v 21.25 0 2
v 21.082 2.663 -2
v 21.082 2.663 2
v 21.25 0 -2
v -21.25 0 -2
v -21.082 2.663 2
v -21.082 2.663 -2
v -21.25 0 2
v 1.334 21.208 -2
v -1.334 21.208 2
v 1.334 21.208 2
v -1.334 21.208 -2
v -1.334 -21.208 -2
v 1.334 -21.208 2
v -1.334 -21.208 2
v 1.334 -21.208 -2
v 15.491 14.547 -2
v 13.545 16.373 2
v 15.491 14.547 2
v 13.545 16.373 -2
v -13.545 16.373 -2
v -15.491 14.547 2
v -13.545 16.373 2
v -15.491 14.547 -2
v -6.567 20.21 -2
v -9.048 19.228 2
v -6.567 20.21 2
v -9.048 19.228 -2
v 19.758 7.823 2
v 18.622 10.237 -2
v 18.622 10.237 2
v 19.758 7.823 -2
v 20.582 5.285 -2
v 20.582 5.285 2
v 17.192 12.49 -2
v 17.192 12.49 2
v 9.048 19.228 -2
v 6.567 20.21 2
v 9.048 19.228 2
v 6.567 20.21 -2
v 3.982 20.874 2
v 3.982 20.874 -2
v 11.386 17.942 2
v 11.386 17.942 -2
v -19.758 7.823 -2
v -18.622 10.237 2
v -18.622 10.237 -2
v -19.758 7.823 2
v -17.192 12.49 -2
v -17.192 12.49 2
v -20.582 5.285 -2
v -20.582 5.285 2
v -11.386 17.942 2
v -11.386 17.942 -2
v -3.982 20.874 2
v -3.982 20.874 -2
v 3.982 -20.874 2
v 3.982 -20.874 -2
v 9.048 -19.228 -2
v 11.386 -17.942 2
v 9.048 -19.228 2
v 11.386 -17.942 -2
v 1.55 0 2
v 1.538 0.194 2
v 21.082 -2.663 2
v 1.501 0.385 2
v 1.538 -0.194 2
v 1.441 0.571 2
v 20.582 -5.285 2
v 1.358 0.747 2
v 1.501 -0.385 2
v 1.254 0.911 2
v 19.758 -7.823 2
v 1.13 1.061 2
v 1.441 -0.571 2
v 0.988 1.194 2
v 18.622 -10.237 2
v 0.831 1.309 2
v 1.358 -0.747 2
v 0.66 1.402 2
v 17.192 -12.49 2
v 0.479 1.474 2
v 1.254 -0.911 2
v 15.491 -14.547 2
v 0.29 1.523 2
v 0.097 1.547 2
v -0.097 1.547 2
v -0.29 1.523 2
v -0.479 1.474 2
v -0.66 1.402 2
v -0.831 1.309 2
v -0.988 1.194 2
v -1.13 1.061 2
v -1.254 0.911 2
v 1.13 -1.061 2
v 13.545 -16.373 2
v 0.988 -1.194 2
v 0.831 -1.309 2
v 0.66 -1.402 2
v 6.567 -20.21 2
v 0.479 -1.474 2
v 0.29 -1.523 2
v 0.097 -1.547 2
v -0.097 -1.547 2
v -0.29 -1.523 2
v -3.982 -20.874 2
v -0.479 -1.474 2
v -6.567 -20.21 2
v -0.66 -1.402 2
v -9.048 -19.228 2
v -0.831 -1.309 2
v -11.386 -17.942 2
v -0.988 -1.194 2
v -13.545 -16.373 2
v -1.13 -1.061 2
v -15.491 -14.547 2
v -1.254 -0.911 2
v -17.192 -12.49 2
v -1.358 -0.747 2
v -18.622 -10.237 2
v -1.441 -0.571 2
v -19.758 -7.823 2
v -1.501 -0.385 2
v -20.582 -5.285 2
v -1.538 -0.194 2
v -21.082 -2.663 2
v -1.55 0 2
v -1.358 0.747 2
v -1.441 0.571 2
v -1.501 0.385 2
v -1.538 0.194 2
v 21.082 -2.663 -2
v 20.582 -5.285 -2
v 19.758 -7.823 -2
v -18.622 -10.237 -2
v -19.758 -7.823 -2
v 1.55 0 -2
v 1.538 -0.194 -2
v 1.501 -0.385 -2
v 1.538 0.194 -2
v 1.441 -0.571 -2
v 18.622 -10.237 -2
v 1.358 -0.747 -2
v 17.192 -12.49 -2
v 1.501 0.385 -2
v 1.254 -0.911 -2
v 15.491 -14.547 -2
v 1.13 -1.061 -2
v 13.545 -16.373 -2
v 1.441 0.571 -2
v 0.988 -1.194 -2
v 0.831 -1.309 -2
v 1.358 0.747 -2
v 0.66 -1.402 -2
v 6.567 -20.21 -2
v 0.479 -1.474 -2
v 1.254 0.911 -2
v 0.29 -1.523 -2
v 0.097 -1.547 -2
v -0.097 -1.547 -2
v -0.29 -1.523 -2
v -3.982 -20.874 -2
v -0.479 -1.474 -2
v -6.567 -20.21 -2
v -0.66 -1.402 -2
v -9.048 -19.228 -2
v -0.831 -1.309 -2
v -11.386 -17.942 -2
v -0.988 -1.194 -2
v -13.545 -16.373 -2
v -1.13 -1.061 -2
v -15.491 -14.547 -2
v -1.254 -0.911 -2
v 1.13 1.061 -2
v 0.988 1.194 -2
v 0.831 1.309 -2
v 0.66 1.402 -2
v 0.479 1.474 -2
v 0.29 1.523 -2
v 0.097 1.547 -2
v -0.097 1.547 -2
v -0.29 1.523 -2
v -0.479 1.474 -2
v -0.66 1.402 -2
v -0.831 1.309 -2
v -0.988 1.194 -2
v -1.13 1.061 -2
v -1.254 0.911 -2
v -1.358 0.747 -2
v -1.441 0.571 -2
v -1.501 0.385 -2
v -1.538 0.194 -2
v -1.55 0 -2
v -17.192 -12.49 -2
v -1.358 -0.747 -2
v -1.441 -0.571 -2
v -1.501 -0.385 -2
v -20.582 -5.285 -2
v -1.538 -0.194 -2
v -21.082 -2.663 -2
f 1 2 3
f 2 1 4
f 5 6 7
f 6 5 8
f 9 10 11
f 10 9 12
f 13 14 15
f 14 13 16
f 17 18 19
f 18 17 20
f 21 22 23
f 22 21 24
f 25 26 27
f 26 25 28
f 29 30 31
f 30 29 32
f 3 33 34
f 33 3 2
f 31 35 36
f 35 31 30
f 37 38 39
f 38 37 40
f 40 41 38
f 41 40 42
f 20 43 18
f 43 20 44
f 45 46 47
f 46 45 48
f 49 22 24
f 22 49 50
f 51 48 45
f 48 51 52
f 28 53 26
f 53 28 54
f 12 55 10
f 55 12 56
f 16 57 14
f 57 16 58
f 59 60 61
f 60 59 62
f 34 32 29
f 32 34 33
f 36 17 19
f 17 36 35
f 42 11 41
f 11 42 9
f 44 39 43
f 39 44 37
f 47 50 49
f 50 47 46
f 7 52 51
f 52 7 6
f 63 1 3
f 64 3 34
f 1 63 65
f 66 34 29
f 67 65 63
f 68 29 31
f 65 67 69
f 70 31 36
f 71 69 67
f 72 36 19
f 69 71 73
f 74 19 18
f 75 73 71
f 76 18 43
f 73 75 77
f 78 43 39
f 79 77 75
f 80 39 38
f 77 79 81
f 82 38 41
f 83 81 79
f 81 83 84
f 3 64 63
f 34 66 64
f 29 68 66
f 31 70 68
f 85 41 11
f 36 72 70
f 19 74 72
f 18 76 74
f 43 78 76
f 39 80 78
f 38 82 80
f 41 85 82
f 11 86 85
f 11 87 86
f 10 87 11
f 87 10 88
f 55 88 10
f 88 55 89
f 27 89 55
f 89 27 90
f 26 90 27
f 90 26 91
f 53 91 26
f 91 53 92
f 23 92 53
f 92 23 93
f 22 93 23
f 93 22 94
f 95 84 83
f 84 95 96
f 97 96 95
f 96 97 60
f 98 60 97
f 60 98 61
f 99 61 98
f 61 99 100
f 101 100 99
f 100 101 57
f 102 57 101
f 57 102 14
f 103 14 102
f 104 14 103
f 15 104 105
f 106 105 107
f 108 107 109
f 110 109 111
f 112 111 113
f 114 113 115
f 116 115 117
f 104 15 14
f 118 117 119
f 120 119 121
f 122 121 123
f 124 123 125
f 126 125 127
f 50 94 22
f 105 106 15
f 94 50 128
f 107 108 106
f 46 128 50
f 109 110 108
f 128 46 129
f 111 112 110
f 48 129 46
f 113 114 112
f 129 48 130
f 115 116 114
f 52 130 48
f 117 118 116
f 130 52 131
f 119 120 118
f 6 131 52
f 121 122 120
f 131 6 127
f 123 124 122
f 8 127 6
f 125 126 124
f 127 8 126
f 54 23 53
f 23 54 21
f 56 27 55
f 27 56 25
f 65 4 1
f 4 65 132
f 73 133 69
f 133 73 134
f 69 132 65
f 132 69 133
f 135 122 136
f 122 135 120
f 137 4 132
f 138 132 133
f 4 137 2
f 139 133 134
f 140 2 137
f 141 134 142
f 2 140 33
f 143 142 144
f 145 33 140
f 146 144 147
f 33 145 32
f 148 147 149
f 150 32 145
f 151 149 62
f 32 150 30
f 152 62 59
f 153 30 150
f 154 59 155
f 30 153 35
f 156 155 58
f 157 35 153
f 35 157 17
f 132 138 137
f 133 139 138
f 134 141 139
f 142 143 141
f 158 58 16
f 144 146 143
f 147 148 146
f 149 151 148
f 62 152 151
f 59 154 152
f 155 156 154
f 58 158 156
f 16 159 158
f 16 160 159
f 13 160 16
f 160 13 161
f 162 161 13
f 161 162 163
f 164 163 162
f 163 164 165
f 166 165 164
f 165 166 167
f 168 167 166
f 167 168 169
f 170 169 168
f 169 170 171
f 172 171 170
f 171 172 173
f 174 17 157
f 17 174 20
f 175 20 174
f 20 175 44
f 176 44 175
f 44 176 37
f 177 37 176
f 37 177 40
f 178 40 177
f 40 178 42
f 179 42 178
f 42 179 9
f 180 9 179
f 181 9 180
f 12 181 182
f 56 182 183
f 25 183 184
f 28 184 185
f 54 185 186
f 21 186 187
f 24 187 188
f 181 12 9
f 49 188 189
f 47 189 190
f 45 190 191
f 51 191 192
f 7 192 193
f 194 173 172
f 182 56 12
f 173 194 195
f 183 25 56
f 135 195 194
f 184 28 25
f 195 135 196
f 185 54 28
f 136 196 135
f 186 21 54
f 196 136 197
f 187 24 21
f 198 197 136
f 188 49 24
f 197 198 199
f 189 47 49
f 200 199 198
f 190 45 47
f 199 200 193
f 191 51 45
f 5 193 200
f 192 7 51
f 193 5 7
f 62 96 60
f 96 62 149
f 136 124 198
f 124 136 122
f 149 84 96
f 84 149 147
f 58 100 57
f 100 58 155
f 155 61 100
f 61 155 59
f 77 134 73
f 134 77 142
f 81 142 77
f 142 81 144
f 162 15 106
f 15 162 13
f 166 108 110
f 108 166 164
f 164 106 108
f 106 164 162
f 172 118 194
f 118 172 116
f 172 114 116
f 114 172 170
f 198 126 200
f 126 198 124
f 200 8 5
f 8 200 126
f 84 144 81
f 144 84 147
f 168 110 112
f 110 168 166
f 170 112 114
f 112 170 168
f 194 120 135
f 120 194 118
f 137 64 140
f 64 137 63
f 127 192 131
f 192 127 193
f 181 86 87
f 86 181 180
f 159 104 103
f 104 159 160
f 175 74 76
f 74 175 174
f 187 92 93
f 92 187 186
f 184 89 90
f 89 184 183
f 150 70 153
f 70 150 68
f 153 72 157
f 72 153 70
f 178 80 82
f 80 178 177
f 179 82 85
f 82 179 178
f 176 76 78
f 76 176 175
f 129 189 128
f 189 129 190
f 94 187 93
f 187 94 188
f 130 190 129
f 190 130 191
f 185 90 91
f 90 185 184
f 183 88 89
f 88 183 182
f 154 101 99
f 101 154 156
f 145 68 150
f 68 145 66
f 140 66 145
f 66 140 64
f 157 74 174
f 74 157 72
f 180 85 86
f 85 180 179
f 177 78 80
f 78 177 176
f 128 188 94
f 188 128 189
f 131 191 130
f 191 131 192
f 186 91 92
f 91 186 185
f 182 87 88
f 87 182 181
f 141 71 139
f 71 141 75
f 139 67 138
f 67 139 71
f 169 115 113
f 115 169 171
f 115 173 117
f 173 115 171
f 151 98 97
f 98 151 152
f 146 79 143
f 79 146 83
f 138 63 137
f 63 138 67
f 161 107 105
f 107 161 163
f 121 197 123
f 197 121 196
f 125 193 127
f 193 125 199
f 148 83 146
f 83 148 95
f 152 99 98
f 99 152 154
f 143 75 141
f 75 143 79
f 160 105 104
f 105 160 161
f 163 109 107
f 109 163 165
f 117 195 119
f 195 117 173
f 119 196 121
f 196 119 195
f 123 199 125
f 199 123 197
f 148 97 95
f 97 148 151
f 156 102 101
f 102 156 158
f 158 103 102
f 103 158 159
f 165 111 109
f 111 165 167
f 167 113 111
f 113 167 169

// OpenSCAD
$fn = 50;


difference() {
	union() {
		translate(v = [0, 0, -2.0000000000]) {
			cylinder(h = 4, r = 21.2500000000);
		}
	}
	union() {
		translate(v = [0, 0, -100.0000000000]) {
			cylinder(h = 200, r = 1.5500000000);
		}
	}
}
